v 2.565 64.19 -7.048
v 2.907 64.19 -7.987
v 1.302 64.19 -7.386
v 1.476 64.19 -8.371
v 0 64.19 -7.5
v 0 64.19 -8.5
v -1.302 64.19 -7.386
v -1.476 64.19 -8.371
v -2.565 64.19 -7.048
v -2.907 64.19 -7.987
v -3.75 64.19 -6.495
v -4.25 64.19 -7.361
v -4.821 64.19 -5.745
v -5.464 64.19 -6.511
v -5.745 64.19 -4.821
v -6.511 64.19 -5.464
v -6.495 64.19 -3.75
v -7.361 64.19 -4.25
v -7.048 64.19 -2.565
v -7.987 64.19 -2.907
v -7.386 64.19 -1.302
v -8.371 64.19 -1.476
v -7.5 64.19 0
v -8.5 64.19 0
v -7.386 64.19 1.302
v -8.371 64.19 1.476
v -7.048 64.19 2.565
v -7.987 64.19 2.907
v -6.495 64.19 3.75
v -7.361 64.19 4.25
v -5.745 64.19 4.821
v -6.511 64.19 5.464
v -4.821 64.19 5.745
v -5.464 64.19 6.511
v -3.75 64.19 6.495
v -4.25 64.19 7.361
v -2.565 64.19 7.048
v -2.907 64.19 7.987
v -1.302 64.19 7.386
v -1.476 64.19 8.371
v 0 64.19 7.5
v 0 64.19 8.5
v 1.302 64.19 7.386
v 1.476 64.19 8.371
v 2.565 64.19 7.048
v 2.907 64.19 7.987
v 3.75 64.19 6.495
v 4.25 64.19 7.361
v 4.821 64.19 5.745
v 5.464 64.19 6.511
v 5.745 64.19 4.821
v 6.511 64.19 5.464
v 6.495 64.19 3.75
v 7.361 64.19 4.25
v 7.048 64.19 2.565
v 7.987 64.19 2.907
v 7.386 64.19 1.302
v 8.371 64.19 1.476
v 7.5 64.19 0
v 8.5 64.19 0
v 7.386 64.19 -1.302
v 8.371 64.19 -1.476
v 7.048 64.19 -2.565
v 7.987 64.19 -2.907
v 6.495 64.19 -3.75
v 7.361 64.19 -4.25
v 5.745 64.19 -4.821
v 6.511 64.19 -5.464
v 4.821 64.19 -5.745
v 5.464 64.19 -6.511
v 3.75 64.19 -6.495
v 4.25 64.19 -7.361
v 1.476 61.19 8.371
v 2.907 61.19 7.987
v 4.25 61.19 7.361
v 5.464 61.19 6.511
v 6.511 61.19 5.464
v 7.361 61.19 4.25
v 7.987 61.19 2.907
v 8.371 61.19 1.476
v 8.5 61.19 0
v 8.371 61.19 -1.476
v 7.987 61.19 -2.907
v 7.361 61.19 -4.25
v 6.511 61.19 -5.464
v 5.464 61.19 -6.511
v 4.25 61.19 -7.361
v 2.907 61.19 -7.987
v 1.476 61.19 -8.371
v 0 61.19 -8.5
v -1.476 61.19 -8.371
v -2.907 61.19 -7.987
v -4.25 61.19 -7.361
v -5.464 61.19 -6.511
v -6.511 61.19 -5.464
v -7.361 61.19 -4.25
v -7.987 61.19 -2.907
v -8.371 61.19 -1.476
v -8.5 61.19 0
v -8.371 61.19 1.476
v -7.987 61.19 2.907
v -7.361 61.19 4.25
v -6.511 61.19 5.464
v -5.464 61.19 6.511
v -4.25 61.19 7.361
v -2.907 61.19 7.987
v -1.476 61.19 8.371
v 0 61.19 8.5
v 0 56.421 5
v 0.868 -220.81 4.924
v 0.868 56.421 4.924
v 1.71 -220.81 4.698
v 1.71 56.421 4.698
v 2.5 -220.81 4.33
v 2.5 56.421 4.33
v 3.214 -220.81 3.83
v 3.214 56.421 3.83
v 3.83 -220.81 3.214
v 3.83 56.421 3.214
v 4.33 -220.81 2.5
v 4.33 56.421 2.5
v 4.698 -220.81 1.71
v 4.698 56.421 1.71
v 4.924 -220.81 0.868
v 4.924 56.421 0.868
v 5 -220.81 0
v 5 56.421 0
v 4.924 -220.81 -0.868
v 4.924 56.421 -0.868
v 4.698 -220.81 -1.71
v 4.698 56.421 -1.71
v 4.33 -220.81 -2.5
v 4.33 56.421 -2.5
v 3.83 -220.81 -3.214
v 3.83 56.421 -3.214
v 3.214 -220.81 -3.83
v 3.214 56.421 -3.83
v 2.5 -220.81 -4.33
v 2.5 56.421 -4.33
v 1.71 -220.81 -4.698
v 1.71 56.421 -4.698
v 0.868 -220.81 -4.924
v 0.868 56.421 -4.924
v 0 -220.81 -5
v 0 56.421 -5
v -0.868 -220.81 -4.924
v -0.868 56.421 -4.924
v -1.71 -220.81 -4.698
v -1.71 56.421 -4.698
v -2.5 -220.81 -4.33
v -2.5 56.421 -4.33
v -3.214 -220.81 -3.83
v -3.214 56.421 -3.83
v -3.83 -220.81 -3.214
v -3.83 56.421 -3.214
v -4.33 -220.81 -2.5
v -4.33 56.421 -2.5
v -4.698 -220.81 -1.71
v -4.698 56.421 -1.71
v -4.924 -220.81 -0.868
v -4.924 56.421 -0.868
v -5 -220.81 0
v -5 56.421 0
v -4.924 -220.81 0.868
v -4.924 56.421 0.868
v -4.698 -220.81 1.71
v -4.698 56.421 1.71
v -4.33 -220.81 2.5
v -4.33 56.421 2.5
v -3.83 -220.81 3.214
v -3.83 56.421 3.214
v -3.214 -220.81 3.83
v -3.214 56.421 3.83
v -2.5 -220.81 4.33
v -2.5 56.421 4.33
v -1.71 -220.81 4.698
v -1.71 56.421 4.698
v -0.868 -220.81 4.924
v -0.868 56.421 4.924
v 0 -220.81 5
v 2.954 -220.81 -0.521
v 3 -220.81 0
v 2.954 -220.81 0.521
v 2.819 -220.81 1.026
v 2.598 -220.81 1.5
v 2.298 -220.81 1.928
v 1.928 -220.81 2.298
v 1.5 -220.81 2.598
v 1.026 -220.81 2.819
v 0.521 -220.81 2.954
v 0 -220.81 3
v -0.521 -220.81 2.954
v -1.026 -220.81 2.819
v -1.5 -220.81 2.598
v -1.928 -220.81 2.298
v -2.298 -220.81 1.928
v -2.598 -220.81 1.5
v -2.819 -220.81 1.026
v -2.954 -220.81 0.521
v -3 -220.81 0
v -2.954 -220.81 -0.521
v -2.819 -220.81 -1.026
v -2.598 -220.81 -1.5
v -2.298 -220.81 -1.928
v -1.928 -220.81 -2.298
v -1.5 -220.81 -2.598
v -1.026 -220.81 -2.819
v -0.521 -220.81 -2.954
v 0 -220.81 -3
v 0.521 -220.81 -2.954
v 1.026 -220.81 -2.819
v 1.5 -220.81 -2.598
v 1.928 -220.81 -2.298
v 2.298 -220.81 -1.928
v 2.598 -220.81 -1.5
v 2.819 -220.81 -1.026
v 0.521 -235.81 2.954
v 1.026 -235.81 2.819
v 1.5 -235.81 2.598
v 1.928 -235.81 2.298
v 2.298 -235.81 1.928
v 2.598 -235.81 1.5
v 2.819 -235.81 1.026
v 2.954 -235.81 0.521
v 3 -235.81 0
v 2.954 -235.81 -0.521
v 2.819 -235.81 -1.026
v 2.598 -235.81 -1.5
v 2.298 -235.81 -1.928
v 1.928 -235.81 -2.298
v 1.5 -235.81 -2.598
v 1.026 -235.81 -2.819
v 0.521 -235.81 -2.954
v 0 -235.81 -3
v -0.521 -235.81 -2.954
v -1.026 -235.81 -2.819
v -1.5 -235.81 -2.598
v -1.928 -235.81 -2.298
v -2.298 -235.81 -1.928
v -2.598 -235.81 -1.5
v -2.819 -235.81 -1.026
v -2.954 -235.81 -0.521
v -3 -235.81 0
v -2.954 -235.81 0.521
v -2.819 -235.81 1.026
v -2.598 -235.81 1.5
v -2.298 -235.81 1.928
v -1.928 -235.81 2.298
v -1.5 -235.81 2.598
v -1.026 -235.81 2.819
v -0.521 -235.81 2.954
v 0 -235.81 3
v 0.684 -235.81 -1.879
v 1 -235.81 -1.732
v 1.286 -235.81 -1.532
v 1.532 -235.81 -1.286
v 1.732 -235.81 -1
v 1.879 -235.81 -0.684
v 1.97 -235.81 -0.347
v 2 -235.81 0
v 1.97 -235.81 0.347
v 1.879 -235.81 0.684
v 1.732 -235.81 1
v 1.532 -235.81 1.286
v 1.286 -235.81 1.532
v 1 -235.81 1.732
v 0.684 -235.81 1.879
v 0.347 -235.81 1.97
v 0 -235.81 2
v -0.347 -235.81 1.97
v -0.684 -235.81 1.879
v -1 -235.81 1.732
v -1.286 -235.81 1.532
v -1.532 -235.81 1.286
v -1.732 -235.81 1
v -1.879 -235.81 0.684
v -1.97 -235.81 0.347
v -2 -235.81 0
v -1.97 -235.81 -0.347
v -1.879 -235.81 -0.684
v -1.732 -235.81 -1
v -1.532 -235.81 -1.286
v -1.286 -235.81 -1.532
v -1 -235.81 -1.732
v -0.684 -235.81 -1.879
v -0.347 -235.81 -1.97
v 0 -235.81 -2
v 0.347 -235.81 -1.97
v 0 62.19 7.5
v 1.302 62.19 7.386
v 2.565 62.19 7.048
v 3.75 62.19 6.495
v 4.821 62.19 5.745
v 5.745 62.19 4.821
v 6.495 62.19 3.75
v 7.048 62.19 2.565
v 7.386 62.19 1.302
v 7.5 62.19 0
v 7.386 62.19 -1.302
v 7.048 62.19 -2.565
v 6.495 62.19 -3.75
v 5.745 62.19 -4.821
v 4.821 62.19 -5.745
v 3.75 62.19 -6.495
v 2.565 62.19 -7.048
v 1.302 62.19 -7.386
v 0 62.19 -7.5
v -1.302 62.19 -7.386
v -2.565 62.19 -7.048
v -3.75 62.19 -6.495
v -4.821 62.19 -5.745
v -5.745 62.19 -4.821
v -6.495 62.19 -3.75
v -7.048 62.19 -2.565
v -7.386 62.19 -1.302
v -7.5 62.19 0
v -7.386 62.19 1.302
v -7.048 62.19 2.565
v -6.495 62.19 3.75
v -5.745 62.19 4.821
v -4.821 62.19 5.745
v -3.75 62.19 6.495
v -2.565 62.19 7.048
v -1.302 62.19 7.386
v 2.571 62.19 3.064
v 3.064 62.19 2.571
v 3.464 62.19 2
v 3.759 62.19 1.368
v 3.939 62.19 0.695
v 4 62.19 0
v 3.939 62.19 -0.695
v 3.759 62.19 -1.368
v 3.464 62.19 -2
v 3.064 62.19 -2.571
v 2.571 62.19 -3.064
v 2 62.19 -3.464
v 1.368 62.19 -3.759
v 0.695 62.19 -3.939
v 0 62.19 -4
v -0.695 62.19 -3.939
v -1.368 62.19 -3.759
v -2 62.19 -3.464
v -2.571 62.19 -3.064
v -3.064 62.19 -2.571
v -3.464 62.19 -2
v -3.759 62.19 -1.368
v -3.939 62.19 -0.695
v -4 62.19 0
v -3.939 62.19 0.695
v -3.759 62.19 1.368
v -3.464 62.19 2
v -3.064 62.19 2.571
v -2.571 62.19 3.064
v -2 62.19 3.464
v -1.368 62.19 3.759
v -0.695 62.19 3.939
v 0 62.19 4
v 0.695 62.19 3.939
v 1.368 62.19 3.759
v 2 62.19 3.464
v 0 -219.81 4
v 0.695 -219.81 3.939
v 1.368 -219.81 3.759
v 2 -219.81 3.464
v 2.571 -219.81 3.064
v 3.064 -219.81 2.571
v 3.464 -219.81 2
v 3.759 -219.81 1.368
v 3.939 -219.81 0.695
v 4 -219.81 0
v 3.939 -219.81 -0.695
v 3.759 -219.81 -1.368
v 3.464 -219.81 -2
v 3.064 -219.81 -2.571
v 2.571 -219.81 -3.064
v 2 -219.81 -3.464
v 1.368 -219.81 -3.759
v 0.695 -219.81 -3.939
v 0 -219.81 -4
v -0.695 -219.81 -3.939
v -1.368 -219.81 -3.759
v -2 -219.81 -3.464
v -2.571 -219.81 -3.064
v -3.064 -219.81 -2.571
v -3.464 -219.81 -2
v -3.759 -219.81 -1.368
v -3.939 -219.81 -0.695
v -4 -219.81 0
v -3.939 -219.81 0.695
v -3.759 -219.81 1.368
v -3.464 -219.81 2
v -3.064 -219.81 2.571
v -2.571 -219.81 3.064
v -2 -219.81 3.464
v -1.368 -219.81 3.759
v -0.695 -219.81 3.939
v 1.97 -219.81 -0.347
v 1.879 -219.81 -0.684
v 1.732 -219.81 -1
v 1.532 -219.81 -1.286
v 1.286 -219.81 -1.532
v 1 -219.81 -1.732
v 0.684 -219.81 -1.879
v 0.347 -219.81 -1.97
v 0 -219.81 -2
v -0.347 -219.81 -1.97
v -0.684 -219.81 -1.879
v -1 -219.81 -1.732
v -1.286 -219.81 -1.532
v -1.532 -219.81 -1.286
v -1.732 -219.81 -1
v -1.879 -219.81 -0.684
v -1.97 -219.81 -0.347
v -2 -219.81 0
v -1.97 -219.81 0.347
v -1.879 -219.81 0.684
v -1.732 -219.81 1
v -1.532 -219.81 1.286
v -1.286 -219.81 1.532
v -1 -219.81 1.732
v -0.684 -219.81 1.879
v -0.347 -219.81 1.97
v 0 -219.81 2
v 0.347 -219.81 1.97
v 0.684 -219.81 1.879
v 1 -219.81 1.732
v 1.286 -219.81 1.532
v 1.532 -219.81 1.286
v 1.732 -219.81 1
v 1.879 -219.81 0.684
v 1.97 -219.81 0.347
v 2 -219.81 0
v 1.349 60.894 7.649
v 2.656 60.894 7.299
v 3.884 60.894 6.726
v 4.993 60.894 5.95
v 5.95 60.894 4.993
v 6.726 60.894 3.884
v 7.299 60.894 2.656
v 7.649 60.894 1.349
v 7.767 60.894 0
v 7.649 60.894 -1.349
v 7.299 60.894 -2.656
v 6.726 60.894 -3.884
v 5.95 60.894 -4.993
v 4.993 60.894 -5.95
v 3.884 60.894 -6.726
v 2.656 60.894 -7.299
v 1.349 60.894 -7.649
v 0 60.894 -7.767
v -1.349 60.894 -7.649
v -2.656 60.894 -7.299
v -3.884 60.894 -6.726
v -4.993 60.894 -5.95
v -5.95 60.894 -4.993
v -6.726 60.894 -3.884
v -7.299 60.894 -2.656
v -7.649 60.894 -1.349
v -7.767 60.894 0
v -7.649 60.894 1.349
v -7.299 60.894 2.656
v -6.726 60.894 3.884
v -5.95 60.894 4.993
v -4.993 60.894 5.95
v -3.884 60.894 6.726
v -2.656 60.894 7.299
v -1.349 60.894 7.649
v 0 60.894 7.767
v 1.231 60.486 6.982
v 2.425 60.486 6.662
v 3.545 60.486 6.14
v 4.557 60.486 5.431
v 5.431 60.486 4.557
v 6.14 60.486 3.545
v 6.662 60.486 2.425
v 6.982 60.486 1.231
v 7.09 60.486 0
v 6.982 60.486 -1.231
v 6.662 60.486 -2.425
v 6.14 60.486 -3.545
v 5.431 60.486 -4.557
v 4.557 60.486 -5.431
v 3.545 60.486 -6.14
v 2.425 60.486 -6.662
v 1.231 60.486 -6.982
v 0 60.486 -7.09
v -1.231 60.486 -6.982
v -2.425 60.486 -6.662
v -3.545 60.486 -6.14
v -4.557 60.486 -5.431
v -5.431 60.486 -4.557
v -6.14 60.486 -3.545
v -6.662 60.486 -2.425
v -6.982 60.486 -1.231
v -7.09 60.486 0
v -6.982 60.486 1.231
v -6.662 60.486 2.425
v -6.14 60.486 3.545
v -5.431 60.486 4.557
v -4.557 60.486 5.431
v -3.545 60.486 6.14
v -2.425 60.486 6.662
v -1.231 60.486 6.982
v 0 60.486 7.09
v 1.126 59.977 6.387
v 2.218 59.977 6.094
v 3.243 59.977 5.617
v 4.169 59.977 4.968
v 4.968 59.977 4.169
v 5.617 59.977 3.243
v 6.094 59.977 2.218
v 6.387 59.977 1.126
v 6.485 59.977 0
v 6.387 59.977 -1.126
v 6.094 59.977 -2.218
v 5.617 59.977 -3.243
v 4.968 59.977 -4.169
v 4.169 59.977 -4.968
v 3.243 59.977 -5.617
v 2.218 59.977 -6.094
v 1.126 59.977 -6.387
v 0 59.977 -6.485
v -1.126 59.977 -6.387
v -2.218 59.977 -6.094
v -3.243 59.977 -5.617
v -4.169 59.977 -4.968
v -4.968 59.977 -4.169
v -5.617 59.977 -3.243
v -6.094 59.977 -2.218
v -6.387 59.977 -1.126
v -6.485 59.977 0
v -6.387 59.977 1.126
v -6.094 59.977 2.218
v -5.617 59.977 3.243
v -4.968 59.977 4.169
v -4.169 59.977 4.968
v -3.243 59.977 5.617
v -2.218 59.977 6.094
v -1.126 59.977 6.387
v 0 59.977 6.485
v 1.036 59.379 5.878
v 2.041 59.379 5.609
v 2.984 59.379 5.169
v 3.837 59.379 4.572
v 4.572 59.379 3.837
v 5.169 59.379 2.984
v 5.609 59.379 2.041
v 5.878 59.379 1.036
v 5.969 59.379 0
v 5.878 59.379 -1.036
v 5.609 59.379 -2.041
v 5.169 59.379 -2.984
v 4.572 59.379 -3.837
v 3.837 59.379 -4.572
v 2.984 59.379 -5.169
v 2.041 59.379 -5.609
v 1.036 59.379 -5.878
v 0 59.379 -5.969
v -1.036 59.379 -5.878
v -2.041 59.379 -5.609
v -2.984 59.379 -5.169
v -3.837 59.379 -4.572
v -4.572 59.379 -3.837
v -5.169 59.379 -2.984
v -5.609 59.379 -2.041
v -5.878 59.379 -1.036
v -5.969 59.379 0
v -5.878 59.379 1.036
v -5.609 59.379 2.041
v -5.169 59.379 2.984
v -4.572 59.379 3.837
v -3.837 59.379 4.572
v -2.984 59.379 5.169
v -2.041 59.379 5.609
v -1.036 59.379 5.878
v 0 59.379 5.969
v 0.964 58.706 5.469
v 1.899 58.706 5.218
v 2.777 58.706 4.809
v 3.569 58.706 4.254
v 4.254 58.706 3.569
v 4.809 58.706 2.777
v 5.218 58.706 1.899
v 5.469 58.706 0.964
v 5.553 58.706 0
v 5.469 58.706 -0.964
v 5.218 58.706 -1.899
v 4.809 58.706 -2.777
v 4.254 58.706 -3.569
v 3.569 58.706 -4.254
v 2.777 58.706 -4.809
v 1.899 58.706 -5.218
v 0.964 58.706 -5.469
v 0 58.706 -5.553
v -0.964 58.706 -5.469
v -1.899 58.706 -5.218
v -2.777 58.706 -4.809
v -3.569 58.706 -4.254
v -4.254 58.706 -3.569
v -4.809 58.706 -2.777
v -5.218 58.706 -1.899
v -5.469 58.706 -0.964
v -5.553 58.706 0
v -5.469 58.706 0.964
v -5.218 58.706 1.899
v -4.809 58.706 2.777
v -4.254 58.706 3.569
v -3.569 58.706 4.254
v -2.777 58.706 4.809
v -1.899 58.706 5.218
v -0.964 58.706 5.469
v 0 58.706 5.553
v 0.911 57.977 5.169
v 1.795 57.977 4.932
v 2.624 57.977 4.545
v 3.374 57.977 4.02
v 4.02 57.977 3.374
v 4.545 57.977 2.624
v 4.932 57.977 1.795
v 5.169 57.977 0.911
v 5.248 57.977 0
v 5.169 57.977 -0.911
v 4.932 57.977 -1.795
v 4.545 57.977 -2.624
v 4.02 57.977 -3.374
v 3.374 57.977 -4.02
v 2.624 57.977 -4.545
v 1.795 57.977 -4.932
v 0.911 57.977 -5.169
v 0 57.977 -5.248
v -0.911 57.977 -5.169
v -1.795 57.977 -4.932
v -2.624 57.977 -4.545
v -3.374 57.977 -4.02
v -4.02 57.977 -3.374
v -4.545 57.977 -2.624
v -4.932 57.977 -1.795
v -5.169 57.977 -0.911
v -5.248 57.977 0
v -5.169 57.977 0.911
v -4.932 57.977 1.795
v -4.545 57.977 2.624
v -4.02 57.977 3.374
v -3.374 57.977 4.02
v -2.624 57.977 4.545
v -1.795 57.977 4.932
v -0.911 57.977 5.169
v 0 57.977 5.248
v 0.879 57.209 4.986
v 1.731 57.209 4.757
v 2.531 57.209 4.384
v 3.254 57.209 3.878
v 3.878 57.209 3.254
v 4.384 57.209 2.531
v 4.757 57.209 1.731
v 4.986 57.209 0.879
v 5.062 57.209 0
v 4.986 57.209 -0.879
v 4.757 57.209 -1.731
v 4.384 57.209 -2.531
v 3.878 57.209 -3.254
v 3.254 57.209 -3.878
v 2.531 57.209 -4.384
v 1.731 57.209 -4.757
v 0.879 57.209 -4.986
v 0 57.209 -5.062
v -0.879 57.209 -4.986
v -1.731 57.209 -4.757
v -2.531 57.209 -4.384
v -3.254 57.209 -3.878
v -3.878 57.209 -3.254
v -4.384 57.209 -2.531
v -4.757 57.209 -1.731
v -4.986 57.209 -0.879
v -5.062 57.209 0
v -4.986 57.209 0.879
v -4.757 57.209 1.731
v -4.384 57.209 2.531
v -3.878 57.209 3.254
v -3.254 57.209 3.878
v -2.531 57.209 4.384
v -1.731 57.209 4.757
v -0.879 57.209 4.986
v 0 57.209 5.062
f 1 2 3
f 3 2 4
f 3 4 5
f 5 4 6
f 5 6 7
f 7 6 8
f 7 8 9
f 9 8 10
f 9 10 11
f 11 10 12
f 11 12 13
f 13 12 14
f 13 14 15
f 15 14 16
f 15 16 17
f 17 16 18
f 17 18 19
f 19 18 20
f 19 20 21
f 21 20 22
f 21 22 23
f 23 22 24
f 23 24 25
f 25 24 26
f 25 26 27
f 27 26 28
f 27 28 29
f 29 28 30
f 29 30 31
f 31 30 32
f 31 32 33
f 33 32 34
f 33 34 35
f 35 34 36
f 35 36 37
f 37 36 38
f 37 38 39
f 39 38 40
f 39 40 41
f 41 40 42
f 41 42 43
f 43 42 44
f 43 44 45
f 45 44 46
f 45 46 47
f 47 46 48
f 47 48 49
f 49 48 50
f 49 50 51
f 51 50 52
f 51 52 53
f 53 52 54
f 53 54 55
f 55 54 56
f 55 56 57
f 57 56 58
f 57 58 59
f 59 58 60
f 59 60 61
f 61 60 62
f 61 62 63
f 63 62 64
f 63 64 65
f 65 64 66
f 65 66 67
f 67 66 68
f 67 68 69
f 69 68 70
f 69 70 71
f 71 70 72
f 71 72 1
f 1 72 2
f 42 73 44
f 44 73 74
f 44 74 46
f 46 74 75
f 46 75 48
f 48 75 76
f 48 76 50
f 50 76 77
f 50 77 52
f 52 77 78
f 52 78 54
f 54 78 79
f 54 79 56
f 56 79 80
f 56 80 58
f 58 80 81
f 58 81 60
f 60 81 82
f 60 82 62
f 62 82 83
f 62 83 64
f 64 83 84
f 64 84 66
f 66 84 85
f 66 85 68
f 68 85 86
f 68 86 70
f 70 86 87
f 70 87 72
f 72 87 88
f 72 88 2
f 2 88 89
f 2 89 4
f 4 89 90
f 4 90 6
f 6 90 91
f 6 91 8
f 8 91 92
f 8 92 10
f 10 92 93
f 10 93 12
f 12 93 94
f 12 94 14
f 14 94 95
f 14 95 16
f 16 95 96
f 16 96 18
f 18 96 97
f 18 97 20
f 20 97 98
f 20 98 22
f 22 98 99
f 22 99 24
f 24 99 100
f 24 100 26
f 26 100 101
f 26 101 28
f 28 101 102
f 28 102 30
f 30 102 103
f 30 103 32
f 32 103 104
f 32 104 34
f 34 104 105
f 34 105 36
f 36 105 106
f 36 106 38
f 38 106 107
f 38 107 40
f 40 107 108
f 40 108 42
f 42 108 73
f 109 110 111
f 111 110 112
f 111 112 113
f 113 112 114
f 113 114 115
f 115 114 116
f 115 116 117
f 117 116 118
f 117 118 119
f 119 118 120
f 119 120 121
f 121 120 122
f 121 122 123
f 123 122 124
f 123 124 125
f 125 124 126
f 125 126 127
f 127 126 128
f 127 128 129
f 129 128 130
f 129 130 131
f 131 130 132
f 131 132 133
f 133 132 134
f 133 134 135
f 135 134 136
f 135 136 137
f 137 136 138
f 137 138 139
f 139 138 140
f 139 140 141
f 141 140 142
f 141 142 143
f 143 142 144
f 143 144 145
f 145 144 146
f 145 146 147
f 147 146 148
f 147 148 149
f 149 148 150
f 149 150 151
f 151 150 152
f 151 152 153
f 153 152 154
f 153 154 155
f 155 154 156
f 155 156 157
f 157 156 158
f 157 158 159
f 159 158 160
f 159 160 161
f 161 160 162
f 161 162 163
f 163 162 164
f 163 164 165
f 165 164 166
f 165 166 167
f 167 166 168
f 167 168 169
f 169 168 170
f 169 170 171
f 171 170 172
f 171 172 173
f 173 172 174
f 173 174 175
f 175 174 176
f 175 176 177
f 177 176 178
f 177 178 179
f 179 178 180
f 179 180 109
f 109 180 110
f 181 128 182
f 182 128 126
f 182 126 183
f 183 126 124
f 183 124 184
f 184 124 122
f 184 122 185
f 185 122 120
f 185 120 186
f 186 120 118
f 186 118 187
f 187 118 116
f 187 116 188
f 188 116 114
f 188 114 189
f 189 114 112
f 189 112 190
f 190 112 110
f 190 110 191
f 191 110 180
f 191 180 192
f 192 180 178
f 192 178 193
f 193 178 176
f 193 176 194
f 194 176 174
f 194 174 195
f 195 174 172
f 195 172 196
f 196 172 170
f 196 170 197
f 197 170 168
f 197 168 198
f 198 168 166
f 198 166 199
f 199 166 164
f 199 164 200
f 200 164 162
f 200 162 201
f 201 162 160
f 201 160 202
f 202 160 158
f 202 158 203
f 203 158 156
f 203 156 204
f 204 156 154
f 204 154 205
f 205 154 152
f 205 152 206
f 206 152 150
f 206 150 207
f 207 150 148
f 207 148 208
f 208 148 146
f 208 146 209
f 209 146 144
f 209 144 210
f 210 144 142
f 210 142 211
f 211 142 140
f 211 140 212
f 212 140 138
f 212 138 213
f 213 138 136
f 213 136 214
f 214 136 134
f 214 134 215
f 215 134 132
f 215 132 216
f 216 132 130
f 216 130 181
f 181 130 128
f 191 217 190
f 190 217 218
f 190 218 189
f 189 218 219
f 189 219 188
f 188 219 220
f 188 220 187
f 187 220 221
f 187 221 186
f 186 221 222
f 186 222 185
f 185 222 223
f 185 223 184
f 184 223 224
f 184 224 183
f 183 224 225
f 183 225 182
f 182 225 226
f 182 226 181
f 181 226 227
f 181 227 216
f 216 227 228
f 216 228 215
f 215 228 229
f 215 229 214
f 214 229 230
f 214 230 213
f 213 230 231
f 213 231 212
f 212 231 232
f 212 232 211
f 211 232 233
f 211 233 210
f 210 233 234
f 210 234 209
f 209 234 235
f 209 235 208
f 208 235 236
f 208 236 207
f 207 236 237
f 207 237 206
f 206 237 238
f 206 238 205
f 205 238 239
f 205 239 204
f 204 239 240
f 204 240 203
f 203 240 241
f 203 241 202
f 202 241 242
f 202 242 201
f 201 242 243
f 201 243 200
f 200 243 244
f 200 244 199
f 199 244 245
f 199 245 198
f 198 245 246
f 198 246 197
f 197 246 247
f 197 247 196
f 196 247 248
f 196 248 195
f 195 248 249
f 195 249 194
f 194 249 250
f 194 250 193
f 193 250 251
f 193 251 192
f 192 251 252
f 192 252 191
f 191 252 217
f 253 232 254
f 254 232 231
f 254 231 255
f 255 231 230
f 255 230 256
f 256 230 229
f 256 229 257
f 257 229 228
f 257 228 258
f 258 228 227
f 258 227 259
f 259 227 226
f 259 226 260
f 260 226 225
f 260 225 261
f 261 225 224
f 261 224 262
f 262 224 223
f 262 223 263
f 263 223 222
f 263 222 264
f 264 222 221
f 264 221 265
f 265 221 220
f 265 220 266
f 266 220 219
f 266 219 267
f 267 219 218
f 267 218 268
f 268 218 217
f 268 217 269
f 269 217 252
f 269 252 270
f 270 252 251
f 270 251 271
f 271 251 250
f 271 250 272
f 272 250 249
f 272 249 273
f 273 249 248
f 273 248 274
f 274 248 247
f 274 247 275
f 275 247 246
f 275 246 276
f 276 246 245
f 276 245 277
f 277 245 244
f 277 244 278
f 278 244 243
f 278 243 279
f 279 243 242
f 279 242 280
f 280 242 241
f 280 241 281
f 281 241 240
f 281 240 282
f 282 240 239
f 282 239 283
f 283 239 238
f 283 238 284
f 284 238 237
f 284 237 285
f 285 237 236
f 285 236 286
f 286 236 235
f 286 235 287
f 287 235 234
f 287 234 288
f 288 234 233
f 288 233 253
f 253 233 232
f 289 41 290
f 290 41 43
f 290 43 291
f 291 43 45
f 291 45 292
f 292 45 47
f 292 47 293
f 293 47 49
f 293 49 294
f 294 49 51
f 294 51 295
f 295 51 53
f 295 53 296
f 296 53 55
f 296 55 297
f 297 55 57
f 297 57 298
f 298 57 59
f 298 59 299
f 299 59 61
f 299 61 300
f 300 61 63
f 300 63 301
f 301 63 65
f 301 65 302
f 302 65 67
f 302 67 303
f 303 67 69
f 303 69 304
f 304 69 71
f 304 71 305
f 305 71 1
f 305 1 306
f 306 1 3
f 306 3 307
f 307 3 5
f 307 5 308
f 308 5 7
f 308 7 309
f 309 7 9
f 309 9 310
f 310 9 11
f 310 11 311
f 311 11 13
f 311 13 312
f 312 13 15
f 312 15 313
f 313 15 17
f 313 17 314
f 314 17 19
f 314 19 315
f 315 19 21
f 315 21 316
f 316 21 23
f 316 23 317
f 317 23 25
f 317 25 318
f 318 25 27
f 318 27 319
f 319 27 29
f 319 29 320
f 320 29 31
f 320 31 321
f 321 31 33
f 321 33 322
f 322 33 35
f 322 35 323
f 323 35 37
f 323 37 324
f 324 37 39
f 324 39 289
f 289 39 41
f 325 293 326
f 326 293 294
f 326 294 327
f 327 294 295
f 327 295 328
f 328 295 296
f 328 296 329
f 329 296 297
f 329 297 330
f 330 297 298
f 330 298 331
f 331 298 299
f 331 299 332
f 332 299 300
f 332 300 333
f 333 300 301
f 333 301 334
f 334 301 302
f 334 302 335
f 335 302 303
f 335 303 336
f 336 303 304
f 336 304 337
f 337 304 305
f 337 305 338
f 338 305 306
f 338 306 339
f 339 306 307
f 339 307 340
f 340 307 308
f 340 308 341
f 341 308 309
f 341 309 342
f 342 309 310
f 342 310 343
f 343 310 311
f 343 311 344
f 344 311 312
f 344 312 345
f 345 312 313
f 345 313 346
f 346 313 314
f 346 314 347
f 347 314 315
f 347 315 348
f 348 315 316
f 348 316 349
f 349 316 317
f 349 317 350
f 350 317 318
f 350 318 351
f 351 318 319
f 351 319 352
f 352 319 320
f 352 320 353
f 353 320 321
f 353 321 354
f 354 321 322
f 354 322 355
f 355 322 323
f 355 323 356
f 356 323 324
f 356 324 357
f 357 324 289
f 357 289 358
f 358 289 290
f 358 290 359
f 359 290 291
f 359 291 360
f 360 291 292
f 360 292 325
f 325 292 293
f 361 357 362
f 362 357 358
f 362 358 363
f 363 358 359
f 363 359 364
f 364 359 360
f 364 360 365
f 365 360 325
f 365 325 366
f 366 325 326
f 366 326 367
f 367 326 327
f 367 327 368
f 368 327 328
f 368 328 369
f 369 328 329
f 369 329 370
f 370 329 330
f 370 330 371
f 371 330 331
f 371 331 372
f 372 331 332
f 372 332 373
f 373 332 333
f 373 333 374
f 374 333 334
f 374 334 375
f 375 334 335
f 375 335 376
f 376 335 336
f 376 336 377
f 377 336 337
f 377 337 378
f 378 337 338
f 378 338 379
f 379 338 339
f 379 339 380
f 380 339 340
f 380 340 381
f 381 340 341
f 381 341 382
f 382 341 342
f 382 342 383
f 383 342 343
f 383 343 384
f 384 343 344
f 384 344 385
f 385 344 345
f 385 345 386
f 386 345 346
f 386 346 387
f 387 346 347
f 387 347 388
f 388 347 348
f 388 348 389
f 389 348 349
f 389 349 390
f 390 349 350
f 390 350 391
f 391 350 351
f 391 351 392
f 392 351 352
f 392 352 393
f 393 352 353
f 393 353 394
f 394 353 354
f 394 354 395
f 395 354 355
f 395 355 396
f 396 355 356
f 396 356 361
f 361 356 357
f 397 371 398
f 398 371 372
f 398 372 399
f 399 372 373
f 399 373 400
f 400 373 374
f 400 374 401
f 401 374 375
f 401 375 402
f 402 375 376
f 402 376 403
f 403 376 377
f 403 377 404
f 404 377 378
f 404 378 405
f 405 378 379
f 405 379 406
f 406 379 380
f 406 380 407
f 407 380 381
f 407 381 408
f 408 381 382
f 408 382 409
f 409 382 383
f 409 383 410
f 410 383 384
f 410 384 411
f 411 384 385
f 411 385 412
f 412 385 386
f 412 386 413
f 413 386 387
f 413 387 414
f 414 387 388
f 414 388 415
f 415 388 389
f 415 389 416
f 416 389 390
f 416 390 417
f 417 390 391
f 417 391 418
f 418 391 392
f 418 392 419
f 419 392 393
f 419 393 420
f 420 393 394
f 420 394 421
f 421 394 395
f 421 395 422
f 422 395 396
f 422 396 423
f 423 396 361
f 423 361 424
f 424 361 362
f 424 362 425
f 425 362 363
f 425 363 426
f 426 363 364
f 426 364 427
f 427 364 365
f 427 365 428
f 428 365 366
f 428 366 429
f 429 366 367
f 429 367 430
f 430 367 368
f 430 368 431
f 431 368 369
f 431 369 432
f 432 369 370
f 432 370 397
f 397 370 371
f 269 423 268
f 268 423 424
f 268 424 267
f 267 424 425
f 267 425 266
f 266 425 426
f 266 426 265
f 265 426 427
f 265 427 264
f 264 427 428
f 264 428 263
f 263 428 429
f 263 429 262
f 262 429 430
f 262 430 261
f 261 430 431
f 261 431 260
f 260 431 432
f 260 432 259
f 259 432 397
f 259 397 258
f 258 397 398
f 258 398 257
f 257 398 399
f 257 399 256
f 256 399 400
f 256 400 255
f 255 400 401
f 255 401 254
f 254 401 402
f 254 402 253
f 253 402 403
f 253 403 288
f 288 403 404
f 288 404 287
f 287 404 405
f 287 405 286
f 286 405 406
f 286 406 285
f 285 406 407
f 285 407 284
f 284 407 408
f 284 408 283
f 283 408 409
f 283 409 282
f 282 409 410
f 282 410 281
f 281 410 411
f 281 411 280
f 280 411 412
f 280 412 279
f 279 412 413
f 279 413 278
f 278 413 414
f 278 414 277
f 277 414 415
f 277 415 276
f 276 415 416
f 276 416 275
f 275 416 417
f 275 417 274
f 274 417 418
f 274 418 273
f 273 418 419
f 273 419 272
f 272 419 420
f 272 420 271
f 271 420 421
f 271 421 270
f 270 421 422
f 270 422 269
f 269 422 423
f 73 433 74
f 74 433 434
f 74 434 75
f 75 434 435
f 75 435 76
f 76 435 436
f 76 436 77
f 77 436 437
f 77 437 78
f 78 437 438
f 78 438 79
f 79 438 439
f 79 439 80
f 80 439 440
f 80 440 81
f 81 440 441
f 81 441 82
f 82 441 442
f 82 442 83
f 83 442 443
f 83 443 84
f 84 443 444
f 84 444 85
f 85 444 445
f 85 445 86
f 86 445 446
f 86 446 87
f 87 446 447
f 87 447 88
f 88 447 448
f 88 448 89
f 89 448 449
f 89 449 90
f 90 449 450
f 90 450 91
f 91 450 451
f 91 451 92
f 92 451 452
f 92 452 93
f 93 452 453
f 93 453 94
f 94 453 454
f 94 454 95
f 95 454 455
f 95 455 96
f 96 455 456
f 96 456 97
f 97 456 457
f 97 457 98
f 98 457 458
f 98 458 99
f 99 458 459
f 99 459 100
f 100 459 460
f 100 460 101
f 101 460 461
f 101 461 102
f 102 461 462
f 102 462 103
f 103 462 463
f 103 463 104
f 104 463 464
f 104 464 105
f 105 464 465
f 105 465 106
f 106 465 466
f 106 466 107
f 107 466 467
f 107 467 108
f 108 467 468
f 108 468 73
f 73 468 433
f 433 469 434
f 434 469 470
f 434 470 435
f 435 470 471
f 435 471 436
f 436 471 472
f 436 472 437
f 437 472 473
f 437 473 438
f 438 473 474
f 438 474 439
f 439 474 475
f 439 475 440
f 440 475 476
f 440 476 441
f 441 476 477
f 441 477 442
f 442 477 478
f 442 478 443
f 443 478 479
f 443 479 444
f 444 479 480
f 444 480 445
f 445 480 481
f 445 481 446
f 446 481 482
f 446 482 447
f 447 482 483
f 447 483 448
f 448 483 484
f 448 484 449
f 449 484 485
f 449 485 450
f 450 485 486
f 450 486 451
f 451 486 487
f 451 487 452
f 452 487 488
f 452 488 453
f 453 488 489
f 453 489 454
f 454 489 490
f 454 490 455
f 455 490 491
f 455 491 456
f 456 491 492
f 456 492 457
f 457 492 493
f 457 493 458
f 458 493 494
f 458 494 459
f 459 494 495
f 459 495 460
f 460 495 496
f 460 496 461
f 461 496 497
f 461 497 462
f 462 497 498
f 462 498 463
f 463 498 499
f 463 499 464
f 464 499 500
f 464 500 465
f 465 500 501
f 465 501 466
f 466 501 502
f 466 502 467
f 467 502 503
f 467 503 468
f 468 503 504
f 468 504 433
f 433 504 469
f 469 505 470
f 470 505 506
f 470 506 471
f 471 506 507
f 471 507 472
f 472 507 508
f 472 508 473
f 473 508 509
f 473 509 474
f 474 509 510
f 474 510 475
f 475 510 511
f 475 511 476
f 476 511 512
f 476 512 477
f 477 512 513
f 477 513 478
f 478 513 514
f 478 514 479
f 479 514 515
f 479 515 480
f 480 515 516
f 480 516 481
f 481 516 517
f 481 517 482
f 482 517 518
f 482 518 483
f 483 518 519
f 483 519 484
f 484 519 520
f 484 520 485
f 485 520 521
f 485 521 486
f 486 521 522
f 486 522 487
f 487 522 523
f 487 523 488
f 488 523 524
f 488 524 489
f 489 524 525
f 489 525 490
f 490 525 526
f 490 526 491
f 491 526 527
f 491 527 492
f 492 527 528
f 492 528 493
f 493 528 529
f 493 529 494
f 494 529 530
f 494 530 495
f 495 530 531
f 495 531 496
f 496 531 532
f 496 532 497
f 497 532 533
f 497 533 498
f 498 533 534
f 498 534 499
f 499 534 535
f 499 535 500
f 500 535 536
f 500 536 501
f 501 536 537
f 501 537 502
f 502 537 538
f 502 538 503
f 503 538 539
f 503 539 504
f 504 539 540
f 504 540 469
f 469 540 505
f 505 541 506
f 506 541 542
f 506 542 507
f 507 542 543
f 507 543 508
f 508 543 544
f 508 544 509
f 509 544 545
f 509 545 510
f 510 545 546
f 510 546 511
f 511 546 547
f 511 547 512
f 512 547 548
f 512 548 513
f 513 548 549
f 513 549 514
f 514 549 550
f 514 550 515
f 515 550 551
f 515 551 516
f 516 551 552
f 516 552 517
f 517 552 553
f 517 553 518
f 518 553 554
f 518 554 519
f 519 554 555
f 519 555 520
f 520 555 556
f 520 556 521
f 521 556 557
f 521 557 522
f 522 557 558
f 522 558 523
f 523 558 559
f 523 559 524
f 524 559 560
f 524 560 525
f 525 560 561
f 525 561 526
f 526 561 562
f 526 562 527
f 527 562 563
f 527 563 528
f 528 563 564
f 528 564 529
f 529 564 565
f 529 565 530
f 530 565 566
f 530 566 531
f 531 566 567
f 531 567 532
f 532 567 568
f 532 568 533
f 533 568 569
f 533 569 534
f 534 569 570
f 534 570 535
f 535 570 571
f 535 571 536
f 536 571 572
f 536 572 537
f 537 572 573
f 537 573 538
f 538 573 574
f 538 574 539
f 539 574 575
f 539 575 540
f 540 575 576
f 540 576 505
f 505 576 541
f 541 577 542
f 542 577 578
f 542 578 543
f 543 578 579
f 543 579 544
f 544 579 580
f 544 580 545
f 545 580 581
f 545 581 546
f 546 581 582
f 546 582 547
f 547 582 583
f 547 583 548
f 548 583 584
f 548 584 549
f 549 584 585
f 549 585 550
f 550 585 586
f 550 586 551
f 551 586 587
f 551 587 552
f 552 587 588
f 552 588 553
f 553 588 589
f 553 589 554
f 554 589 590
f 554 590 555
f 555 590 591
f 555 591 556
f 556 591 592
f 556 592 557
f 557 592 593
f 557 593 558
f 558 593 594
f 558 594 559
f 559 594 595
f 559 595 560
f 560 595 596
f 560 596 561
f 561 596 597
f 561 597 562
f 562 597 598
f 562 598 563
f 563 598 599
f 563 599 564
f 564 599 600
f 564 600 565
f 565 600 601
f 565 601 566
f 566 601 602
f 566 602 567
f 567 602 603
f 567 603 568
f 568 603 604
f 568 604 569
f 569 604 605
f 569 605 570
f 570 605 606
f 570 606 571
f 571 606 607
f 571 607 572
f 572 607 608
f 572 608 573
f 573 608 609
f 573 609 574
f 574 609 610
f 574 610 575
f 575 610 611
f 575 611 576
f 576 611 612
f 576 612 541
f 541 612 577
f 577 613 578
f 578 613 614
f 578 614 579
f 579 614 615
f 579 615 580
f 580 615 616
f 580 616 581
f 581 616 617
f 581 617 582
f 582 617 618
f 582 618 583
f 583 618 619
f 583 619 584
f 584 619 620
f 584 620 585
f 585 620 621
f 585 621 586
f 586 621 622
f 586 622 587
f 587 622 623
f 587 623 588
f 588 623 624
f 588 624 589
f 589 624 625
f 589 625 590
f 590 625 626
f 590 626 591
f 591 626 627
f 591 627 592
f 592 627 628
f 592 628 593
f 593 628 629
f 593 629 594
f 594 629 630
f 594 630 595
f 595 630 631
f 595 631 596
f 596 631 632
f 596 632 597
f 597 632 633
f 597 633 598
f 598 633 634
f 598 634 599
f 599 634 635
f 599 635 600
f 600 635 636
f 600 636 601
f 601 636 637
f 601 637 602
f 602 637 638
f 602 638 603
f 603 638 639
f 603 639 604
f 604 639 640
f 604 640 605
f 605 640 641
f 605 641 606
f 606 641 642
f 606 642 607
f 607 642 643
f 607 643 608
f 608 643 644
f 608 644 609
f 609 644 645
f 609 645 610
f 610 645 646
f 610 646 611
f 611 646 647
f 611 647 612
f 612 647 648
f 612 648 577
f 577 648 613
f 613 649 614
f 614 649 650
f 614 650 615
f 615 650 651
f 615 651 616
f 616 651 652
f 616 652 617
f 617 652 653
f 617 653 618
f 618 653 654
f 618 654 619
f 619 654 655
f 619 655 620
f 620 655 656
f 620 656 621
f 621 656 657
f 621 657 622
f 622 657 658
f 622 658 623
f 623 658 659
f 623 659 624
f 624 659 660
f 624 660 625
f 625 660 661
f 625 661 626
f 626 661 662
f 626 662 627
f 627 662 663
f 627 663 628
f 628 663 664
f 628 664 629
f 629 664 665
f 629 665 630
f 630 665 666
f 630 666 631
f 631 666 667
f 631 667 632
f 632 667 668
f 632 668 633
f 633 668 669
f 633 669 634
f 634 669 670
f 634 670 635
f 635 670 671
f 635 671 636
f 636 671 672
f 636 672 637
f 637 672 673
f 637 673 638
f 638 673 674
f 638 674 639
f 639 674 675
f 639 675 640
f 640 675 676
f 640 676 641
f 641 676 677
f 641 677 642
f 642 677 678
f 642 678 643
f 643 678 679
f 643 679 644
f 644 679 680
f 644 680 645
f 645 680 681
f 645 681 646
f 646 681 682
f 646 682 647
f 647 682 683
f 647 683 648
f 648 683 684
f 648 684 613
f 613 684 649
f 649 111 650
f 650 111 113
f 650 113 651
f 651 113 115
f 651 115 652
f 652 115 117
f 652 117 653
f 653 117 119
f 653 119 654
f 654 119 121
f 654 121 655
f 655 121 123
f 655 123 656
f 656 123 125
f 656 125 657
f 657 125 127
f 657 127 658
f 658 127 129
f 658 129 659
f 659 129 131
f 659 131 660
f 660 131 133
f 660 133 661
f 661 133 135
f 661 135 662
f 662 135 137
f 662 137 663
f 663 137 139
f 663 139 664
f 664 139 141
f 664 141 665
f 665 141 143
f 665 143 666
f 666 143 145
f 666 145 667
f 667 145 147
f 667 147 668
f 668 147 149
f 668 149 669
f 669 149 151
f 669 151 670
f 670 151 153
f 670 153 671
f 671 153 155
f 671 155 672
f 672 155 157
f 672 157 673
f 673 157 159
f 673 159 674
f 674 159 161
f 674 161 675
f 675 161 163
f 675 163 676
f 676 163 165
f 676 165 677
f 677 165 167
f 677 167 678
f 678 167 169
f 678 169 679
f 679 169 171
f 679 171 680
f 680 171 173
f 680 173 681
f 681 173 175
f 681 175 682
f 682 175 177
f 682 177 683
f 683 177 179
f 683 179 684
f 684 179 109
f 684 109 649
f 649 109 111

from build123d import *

# Parameters (mm, degrees)
SHELL1_T           = -1
SKETCH2_R          = 2
CUT_EXTRUDE1_DEPTH = 300.241541234
FILLET1_R          = 5


with BuildPart() as part:
    # Sketch1 → Revolve1 (revolve)
    with BuildSketch(Plane(origin=(0, 0, 0), x_dir=(0, 0, -1), z_dir=(1, 0, 0)), mode=Mode.PRIVATE) as revolve1_sk:
        Polygon((0, 64.190330059), (8.5, 64.190330059), (8.5, 61.190330059), (5, 61.190330059), (5, -220.809669941), (3, -220.809669941), (3, -235.809669941), (0, -235.809669941), align=None)
    revolve(revolve1_sk.sketch.rotate(Axis((0, 68.843964237, 0), (0, -1, 0)), 180), axis=Axis((0, 68.843964237, 0), (0, -1, 0)))

    # Shell1
    shell1_openings = [part.faces().sort_by_distance(p)[0] for p in [
        (0, 64.190330059, 0),
    ]]
    offset(amount=SHELL1_T, openings=shell1_openings, kind=Kind.INTERSECTION)

    # Sketch2 → Cut-Extrude1 (cut, through all)
    with BuildSketch(Plane(origin=(0, -234.809669941, 0), x_dir=(1, 0, 0), z_dir=(0, 1, 0))):
        with Locations(Location((0, 0, 0), (0, 0, 270))):
            Circle(SKETCH2_R)
    extrude(amount=-CUT_EXTRUDE1_DEPTH, mode=Mode.SUBTRACT)

    # Fillet1
    # the kernel refuses this fillet: 5 mm, written as the material it adds along each edge
    with BuildSketch(Plane(origin=(0, 61.190330059, 0), x_dir=(0, 0, 1), z_dir=(1, 0, 0))) as fillet1_piece_1:
        with BuildLine():
            CenterArc((10, 4.769696007), FILLET1_R, 180, 72.542396876)
            Line((5, 4.769696007), (4.9, 4.769696007))
            Line((4.9, 4.769696007), (4.9, 0))
            Line((4.9, 0), (5, -0.1))
            ThreePointArc((5, -0.1), (6.75, -0.1), (8.47, -0.09539392))
            Line((8.47, -0.09539392), (8.5, 0))
        make_face()
    revolve(axis=Axis((0, 61.190330059, 0), (0, -1, 0)))


solid = part.part
